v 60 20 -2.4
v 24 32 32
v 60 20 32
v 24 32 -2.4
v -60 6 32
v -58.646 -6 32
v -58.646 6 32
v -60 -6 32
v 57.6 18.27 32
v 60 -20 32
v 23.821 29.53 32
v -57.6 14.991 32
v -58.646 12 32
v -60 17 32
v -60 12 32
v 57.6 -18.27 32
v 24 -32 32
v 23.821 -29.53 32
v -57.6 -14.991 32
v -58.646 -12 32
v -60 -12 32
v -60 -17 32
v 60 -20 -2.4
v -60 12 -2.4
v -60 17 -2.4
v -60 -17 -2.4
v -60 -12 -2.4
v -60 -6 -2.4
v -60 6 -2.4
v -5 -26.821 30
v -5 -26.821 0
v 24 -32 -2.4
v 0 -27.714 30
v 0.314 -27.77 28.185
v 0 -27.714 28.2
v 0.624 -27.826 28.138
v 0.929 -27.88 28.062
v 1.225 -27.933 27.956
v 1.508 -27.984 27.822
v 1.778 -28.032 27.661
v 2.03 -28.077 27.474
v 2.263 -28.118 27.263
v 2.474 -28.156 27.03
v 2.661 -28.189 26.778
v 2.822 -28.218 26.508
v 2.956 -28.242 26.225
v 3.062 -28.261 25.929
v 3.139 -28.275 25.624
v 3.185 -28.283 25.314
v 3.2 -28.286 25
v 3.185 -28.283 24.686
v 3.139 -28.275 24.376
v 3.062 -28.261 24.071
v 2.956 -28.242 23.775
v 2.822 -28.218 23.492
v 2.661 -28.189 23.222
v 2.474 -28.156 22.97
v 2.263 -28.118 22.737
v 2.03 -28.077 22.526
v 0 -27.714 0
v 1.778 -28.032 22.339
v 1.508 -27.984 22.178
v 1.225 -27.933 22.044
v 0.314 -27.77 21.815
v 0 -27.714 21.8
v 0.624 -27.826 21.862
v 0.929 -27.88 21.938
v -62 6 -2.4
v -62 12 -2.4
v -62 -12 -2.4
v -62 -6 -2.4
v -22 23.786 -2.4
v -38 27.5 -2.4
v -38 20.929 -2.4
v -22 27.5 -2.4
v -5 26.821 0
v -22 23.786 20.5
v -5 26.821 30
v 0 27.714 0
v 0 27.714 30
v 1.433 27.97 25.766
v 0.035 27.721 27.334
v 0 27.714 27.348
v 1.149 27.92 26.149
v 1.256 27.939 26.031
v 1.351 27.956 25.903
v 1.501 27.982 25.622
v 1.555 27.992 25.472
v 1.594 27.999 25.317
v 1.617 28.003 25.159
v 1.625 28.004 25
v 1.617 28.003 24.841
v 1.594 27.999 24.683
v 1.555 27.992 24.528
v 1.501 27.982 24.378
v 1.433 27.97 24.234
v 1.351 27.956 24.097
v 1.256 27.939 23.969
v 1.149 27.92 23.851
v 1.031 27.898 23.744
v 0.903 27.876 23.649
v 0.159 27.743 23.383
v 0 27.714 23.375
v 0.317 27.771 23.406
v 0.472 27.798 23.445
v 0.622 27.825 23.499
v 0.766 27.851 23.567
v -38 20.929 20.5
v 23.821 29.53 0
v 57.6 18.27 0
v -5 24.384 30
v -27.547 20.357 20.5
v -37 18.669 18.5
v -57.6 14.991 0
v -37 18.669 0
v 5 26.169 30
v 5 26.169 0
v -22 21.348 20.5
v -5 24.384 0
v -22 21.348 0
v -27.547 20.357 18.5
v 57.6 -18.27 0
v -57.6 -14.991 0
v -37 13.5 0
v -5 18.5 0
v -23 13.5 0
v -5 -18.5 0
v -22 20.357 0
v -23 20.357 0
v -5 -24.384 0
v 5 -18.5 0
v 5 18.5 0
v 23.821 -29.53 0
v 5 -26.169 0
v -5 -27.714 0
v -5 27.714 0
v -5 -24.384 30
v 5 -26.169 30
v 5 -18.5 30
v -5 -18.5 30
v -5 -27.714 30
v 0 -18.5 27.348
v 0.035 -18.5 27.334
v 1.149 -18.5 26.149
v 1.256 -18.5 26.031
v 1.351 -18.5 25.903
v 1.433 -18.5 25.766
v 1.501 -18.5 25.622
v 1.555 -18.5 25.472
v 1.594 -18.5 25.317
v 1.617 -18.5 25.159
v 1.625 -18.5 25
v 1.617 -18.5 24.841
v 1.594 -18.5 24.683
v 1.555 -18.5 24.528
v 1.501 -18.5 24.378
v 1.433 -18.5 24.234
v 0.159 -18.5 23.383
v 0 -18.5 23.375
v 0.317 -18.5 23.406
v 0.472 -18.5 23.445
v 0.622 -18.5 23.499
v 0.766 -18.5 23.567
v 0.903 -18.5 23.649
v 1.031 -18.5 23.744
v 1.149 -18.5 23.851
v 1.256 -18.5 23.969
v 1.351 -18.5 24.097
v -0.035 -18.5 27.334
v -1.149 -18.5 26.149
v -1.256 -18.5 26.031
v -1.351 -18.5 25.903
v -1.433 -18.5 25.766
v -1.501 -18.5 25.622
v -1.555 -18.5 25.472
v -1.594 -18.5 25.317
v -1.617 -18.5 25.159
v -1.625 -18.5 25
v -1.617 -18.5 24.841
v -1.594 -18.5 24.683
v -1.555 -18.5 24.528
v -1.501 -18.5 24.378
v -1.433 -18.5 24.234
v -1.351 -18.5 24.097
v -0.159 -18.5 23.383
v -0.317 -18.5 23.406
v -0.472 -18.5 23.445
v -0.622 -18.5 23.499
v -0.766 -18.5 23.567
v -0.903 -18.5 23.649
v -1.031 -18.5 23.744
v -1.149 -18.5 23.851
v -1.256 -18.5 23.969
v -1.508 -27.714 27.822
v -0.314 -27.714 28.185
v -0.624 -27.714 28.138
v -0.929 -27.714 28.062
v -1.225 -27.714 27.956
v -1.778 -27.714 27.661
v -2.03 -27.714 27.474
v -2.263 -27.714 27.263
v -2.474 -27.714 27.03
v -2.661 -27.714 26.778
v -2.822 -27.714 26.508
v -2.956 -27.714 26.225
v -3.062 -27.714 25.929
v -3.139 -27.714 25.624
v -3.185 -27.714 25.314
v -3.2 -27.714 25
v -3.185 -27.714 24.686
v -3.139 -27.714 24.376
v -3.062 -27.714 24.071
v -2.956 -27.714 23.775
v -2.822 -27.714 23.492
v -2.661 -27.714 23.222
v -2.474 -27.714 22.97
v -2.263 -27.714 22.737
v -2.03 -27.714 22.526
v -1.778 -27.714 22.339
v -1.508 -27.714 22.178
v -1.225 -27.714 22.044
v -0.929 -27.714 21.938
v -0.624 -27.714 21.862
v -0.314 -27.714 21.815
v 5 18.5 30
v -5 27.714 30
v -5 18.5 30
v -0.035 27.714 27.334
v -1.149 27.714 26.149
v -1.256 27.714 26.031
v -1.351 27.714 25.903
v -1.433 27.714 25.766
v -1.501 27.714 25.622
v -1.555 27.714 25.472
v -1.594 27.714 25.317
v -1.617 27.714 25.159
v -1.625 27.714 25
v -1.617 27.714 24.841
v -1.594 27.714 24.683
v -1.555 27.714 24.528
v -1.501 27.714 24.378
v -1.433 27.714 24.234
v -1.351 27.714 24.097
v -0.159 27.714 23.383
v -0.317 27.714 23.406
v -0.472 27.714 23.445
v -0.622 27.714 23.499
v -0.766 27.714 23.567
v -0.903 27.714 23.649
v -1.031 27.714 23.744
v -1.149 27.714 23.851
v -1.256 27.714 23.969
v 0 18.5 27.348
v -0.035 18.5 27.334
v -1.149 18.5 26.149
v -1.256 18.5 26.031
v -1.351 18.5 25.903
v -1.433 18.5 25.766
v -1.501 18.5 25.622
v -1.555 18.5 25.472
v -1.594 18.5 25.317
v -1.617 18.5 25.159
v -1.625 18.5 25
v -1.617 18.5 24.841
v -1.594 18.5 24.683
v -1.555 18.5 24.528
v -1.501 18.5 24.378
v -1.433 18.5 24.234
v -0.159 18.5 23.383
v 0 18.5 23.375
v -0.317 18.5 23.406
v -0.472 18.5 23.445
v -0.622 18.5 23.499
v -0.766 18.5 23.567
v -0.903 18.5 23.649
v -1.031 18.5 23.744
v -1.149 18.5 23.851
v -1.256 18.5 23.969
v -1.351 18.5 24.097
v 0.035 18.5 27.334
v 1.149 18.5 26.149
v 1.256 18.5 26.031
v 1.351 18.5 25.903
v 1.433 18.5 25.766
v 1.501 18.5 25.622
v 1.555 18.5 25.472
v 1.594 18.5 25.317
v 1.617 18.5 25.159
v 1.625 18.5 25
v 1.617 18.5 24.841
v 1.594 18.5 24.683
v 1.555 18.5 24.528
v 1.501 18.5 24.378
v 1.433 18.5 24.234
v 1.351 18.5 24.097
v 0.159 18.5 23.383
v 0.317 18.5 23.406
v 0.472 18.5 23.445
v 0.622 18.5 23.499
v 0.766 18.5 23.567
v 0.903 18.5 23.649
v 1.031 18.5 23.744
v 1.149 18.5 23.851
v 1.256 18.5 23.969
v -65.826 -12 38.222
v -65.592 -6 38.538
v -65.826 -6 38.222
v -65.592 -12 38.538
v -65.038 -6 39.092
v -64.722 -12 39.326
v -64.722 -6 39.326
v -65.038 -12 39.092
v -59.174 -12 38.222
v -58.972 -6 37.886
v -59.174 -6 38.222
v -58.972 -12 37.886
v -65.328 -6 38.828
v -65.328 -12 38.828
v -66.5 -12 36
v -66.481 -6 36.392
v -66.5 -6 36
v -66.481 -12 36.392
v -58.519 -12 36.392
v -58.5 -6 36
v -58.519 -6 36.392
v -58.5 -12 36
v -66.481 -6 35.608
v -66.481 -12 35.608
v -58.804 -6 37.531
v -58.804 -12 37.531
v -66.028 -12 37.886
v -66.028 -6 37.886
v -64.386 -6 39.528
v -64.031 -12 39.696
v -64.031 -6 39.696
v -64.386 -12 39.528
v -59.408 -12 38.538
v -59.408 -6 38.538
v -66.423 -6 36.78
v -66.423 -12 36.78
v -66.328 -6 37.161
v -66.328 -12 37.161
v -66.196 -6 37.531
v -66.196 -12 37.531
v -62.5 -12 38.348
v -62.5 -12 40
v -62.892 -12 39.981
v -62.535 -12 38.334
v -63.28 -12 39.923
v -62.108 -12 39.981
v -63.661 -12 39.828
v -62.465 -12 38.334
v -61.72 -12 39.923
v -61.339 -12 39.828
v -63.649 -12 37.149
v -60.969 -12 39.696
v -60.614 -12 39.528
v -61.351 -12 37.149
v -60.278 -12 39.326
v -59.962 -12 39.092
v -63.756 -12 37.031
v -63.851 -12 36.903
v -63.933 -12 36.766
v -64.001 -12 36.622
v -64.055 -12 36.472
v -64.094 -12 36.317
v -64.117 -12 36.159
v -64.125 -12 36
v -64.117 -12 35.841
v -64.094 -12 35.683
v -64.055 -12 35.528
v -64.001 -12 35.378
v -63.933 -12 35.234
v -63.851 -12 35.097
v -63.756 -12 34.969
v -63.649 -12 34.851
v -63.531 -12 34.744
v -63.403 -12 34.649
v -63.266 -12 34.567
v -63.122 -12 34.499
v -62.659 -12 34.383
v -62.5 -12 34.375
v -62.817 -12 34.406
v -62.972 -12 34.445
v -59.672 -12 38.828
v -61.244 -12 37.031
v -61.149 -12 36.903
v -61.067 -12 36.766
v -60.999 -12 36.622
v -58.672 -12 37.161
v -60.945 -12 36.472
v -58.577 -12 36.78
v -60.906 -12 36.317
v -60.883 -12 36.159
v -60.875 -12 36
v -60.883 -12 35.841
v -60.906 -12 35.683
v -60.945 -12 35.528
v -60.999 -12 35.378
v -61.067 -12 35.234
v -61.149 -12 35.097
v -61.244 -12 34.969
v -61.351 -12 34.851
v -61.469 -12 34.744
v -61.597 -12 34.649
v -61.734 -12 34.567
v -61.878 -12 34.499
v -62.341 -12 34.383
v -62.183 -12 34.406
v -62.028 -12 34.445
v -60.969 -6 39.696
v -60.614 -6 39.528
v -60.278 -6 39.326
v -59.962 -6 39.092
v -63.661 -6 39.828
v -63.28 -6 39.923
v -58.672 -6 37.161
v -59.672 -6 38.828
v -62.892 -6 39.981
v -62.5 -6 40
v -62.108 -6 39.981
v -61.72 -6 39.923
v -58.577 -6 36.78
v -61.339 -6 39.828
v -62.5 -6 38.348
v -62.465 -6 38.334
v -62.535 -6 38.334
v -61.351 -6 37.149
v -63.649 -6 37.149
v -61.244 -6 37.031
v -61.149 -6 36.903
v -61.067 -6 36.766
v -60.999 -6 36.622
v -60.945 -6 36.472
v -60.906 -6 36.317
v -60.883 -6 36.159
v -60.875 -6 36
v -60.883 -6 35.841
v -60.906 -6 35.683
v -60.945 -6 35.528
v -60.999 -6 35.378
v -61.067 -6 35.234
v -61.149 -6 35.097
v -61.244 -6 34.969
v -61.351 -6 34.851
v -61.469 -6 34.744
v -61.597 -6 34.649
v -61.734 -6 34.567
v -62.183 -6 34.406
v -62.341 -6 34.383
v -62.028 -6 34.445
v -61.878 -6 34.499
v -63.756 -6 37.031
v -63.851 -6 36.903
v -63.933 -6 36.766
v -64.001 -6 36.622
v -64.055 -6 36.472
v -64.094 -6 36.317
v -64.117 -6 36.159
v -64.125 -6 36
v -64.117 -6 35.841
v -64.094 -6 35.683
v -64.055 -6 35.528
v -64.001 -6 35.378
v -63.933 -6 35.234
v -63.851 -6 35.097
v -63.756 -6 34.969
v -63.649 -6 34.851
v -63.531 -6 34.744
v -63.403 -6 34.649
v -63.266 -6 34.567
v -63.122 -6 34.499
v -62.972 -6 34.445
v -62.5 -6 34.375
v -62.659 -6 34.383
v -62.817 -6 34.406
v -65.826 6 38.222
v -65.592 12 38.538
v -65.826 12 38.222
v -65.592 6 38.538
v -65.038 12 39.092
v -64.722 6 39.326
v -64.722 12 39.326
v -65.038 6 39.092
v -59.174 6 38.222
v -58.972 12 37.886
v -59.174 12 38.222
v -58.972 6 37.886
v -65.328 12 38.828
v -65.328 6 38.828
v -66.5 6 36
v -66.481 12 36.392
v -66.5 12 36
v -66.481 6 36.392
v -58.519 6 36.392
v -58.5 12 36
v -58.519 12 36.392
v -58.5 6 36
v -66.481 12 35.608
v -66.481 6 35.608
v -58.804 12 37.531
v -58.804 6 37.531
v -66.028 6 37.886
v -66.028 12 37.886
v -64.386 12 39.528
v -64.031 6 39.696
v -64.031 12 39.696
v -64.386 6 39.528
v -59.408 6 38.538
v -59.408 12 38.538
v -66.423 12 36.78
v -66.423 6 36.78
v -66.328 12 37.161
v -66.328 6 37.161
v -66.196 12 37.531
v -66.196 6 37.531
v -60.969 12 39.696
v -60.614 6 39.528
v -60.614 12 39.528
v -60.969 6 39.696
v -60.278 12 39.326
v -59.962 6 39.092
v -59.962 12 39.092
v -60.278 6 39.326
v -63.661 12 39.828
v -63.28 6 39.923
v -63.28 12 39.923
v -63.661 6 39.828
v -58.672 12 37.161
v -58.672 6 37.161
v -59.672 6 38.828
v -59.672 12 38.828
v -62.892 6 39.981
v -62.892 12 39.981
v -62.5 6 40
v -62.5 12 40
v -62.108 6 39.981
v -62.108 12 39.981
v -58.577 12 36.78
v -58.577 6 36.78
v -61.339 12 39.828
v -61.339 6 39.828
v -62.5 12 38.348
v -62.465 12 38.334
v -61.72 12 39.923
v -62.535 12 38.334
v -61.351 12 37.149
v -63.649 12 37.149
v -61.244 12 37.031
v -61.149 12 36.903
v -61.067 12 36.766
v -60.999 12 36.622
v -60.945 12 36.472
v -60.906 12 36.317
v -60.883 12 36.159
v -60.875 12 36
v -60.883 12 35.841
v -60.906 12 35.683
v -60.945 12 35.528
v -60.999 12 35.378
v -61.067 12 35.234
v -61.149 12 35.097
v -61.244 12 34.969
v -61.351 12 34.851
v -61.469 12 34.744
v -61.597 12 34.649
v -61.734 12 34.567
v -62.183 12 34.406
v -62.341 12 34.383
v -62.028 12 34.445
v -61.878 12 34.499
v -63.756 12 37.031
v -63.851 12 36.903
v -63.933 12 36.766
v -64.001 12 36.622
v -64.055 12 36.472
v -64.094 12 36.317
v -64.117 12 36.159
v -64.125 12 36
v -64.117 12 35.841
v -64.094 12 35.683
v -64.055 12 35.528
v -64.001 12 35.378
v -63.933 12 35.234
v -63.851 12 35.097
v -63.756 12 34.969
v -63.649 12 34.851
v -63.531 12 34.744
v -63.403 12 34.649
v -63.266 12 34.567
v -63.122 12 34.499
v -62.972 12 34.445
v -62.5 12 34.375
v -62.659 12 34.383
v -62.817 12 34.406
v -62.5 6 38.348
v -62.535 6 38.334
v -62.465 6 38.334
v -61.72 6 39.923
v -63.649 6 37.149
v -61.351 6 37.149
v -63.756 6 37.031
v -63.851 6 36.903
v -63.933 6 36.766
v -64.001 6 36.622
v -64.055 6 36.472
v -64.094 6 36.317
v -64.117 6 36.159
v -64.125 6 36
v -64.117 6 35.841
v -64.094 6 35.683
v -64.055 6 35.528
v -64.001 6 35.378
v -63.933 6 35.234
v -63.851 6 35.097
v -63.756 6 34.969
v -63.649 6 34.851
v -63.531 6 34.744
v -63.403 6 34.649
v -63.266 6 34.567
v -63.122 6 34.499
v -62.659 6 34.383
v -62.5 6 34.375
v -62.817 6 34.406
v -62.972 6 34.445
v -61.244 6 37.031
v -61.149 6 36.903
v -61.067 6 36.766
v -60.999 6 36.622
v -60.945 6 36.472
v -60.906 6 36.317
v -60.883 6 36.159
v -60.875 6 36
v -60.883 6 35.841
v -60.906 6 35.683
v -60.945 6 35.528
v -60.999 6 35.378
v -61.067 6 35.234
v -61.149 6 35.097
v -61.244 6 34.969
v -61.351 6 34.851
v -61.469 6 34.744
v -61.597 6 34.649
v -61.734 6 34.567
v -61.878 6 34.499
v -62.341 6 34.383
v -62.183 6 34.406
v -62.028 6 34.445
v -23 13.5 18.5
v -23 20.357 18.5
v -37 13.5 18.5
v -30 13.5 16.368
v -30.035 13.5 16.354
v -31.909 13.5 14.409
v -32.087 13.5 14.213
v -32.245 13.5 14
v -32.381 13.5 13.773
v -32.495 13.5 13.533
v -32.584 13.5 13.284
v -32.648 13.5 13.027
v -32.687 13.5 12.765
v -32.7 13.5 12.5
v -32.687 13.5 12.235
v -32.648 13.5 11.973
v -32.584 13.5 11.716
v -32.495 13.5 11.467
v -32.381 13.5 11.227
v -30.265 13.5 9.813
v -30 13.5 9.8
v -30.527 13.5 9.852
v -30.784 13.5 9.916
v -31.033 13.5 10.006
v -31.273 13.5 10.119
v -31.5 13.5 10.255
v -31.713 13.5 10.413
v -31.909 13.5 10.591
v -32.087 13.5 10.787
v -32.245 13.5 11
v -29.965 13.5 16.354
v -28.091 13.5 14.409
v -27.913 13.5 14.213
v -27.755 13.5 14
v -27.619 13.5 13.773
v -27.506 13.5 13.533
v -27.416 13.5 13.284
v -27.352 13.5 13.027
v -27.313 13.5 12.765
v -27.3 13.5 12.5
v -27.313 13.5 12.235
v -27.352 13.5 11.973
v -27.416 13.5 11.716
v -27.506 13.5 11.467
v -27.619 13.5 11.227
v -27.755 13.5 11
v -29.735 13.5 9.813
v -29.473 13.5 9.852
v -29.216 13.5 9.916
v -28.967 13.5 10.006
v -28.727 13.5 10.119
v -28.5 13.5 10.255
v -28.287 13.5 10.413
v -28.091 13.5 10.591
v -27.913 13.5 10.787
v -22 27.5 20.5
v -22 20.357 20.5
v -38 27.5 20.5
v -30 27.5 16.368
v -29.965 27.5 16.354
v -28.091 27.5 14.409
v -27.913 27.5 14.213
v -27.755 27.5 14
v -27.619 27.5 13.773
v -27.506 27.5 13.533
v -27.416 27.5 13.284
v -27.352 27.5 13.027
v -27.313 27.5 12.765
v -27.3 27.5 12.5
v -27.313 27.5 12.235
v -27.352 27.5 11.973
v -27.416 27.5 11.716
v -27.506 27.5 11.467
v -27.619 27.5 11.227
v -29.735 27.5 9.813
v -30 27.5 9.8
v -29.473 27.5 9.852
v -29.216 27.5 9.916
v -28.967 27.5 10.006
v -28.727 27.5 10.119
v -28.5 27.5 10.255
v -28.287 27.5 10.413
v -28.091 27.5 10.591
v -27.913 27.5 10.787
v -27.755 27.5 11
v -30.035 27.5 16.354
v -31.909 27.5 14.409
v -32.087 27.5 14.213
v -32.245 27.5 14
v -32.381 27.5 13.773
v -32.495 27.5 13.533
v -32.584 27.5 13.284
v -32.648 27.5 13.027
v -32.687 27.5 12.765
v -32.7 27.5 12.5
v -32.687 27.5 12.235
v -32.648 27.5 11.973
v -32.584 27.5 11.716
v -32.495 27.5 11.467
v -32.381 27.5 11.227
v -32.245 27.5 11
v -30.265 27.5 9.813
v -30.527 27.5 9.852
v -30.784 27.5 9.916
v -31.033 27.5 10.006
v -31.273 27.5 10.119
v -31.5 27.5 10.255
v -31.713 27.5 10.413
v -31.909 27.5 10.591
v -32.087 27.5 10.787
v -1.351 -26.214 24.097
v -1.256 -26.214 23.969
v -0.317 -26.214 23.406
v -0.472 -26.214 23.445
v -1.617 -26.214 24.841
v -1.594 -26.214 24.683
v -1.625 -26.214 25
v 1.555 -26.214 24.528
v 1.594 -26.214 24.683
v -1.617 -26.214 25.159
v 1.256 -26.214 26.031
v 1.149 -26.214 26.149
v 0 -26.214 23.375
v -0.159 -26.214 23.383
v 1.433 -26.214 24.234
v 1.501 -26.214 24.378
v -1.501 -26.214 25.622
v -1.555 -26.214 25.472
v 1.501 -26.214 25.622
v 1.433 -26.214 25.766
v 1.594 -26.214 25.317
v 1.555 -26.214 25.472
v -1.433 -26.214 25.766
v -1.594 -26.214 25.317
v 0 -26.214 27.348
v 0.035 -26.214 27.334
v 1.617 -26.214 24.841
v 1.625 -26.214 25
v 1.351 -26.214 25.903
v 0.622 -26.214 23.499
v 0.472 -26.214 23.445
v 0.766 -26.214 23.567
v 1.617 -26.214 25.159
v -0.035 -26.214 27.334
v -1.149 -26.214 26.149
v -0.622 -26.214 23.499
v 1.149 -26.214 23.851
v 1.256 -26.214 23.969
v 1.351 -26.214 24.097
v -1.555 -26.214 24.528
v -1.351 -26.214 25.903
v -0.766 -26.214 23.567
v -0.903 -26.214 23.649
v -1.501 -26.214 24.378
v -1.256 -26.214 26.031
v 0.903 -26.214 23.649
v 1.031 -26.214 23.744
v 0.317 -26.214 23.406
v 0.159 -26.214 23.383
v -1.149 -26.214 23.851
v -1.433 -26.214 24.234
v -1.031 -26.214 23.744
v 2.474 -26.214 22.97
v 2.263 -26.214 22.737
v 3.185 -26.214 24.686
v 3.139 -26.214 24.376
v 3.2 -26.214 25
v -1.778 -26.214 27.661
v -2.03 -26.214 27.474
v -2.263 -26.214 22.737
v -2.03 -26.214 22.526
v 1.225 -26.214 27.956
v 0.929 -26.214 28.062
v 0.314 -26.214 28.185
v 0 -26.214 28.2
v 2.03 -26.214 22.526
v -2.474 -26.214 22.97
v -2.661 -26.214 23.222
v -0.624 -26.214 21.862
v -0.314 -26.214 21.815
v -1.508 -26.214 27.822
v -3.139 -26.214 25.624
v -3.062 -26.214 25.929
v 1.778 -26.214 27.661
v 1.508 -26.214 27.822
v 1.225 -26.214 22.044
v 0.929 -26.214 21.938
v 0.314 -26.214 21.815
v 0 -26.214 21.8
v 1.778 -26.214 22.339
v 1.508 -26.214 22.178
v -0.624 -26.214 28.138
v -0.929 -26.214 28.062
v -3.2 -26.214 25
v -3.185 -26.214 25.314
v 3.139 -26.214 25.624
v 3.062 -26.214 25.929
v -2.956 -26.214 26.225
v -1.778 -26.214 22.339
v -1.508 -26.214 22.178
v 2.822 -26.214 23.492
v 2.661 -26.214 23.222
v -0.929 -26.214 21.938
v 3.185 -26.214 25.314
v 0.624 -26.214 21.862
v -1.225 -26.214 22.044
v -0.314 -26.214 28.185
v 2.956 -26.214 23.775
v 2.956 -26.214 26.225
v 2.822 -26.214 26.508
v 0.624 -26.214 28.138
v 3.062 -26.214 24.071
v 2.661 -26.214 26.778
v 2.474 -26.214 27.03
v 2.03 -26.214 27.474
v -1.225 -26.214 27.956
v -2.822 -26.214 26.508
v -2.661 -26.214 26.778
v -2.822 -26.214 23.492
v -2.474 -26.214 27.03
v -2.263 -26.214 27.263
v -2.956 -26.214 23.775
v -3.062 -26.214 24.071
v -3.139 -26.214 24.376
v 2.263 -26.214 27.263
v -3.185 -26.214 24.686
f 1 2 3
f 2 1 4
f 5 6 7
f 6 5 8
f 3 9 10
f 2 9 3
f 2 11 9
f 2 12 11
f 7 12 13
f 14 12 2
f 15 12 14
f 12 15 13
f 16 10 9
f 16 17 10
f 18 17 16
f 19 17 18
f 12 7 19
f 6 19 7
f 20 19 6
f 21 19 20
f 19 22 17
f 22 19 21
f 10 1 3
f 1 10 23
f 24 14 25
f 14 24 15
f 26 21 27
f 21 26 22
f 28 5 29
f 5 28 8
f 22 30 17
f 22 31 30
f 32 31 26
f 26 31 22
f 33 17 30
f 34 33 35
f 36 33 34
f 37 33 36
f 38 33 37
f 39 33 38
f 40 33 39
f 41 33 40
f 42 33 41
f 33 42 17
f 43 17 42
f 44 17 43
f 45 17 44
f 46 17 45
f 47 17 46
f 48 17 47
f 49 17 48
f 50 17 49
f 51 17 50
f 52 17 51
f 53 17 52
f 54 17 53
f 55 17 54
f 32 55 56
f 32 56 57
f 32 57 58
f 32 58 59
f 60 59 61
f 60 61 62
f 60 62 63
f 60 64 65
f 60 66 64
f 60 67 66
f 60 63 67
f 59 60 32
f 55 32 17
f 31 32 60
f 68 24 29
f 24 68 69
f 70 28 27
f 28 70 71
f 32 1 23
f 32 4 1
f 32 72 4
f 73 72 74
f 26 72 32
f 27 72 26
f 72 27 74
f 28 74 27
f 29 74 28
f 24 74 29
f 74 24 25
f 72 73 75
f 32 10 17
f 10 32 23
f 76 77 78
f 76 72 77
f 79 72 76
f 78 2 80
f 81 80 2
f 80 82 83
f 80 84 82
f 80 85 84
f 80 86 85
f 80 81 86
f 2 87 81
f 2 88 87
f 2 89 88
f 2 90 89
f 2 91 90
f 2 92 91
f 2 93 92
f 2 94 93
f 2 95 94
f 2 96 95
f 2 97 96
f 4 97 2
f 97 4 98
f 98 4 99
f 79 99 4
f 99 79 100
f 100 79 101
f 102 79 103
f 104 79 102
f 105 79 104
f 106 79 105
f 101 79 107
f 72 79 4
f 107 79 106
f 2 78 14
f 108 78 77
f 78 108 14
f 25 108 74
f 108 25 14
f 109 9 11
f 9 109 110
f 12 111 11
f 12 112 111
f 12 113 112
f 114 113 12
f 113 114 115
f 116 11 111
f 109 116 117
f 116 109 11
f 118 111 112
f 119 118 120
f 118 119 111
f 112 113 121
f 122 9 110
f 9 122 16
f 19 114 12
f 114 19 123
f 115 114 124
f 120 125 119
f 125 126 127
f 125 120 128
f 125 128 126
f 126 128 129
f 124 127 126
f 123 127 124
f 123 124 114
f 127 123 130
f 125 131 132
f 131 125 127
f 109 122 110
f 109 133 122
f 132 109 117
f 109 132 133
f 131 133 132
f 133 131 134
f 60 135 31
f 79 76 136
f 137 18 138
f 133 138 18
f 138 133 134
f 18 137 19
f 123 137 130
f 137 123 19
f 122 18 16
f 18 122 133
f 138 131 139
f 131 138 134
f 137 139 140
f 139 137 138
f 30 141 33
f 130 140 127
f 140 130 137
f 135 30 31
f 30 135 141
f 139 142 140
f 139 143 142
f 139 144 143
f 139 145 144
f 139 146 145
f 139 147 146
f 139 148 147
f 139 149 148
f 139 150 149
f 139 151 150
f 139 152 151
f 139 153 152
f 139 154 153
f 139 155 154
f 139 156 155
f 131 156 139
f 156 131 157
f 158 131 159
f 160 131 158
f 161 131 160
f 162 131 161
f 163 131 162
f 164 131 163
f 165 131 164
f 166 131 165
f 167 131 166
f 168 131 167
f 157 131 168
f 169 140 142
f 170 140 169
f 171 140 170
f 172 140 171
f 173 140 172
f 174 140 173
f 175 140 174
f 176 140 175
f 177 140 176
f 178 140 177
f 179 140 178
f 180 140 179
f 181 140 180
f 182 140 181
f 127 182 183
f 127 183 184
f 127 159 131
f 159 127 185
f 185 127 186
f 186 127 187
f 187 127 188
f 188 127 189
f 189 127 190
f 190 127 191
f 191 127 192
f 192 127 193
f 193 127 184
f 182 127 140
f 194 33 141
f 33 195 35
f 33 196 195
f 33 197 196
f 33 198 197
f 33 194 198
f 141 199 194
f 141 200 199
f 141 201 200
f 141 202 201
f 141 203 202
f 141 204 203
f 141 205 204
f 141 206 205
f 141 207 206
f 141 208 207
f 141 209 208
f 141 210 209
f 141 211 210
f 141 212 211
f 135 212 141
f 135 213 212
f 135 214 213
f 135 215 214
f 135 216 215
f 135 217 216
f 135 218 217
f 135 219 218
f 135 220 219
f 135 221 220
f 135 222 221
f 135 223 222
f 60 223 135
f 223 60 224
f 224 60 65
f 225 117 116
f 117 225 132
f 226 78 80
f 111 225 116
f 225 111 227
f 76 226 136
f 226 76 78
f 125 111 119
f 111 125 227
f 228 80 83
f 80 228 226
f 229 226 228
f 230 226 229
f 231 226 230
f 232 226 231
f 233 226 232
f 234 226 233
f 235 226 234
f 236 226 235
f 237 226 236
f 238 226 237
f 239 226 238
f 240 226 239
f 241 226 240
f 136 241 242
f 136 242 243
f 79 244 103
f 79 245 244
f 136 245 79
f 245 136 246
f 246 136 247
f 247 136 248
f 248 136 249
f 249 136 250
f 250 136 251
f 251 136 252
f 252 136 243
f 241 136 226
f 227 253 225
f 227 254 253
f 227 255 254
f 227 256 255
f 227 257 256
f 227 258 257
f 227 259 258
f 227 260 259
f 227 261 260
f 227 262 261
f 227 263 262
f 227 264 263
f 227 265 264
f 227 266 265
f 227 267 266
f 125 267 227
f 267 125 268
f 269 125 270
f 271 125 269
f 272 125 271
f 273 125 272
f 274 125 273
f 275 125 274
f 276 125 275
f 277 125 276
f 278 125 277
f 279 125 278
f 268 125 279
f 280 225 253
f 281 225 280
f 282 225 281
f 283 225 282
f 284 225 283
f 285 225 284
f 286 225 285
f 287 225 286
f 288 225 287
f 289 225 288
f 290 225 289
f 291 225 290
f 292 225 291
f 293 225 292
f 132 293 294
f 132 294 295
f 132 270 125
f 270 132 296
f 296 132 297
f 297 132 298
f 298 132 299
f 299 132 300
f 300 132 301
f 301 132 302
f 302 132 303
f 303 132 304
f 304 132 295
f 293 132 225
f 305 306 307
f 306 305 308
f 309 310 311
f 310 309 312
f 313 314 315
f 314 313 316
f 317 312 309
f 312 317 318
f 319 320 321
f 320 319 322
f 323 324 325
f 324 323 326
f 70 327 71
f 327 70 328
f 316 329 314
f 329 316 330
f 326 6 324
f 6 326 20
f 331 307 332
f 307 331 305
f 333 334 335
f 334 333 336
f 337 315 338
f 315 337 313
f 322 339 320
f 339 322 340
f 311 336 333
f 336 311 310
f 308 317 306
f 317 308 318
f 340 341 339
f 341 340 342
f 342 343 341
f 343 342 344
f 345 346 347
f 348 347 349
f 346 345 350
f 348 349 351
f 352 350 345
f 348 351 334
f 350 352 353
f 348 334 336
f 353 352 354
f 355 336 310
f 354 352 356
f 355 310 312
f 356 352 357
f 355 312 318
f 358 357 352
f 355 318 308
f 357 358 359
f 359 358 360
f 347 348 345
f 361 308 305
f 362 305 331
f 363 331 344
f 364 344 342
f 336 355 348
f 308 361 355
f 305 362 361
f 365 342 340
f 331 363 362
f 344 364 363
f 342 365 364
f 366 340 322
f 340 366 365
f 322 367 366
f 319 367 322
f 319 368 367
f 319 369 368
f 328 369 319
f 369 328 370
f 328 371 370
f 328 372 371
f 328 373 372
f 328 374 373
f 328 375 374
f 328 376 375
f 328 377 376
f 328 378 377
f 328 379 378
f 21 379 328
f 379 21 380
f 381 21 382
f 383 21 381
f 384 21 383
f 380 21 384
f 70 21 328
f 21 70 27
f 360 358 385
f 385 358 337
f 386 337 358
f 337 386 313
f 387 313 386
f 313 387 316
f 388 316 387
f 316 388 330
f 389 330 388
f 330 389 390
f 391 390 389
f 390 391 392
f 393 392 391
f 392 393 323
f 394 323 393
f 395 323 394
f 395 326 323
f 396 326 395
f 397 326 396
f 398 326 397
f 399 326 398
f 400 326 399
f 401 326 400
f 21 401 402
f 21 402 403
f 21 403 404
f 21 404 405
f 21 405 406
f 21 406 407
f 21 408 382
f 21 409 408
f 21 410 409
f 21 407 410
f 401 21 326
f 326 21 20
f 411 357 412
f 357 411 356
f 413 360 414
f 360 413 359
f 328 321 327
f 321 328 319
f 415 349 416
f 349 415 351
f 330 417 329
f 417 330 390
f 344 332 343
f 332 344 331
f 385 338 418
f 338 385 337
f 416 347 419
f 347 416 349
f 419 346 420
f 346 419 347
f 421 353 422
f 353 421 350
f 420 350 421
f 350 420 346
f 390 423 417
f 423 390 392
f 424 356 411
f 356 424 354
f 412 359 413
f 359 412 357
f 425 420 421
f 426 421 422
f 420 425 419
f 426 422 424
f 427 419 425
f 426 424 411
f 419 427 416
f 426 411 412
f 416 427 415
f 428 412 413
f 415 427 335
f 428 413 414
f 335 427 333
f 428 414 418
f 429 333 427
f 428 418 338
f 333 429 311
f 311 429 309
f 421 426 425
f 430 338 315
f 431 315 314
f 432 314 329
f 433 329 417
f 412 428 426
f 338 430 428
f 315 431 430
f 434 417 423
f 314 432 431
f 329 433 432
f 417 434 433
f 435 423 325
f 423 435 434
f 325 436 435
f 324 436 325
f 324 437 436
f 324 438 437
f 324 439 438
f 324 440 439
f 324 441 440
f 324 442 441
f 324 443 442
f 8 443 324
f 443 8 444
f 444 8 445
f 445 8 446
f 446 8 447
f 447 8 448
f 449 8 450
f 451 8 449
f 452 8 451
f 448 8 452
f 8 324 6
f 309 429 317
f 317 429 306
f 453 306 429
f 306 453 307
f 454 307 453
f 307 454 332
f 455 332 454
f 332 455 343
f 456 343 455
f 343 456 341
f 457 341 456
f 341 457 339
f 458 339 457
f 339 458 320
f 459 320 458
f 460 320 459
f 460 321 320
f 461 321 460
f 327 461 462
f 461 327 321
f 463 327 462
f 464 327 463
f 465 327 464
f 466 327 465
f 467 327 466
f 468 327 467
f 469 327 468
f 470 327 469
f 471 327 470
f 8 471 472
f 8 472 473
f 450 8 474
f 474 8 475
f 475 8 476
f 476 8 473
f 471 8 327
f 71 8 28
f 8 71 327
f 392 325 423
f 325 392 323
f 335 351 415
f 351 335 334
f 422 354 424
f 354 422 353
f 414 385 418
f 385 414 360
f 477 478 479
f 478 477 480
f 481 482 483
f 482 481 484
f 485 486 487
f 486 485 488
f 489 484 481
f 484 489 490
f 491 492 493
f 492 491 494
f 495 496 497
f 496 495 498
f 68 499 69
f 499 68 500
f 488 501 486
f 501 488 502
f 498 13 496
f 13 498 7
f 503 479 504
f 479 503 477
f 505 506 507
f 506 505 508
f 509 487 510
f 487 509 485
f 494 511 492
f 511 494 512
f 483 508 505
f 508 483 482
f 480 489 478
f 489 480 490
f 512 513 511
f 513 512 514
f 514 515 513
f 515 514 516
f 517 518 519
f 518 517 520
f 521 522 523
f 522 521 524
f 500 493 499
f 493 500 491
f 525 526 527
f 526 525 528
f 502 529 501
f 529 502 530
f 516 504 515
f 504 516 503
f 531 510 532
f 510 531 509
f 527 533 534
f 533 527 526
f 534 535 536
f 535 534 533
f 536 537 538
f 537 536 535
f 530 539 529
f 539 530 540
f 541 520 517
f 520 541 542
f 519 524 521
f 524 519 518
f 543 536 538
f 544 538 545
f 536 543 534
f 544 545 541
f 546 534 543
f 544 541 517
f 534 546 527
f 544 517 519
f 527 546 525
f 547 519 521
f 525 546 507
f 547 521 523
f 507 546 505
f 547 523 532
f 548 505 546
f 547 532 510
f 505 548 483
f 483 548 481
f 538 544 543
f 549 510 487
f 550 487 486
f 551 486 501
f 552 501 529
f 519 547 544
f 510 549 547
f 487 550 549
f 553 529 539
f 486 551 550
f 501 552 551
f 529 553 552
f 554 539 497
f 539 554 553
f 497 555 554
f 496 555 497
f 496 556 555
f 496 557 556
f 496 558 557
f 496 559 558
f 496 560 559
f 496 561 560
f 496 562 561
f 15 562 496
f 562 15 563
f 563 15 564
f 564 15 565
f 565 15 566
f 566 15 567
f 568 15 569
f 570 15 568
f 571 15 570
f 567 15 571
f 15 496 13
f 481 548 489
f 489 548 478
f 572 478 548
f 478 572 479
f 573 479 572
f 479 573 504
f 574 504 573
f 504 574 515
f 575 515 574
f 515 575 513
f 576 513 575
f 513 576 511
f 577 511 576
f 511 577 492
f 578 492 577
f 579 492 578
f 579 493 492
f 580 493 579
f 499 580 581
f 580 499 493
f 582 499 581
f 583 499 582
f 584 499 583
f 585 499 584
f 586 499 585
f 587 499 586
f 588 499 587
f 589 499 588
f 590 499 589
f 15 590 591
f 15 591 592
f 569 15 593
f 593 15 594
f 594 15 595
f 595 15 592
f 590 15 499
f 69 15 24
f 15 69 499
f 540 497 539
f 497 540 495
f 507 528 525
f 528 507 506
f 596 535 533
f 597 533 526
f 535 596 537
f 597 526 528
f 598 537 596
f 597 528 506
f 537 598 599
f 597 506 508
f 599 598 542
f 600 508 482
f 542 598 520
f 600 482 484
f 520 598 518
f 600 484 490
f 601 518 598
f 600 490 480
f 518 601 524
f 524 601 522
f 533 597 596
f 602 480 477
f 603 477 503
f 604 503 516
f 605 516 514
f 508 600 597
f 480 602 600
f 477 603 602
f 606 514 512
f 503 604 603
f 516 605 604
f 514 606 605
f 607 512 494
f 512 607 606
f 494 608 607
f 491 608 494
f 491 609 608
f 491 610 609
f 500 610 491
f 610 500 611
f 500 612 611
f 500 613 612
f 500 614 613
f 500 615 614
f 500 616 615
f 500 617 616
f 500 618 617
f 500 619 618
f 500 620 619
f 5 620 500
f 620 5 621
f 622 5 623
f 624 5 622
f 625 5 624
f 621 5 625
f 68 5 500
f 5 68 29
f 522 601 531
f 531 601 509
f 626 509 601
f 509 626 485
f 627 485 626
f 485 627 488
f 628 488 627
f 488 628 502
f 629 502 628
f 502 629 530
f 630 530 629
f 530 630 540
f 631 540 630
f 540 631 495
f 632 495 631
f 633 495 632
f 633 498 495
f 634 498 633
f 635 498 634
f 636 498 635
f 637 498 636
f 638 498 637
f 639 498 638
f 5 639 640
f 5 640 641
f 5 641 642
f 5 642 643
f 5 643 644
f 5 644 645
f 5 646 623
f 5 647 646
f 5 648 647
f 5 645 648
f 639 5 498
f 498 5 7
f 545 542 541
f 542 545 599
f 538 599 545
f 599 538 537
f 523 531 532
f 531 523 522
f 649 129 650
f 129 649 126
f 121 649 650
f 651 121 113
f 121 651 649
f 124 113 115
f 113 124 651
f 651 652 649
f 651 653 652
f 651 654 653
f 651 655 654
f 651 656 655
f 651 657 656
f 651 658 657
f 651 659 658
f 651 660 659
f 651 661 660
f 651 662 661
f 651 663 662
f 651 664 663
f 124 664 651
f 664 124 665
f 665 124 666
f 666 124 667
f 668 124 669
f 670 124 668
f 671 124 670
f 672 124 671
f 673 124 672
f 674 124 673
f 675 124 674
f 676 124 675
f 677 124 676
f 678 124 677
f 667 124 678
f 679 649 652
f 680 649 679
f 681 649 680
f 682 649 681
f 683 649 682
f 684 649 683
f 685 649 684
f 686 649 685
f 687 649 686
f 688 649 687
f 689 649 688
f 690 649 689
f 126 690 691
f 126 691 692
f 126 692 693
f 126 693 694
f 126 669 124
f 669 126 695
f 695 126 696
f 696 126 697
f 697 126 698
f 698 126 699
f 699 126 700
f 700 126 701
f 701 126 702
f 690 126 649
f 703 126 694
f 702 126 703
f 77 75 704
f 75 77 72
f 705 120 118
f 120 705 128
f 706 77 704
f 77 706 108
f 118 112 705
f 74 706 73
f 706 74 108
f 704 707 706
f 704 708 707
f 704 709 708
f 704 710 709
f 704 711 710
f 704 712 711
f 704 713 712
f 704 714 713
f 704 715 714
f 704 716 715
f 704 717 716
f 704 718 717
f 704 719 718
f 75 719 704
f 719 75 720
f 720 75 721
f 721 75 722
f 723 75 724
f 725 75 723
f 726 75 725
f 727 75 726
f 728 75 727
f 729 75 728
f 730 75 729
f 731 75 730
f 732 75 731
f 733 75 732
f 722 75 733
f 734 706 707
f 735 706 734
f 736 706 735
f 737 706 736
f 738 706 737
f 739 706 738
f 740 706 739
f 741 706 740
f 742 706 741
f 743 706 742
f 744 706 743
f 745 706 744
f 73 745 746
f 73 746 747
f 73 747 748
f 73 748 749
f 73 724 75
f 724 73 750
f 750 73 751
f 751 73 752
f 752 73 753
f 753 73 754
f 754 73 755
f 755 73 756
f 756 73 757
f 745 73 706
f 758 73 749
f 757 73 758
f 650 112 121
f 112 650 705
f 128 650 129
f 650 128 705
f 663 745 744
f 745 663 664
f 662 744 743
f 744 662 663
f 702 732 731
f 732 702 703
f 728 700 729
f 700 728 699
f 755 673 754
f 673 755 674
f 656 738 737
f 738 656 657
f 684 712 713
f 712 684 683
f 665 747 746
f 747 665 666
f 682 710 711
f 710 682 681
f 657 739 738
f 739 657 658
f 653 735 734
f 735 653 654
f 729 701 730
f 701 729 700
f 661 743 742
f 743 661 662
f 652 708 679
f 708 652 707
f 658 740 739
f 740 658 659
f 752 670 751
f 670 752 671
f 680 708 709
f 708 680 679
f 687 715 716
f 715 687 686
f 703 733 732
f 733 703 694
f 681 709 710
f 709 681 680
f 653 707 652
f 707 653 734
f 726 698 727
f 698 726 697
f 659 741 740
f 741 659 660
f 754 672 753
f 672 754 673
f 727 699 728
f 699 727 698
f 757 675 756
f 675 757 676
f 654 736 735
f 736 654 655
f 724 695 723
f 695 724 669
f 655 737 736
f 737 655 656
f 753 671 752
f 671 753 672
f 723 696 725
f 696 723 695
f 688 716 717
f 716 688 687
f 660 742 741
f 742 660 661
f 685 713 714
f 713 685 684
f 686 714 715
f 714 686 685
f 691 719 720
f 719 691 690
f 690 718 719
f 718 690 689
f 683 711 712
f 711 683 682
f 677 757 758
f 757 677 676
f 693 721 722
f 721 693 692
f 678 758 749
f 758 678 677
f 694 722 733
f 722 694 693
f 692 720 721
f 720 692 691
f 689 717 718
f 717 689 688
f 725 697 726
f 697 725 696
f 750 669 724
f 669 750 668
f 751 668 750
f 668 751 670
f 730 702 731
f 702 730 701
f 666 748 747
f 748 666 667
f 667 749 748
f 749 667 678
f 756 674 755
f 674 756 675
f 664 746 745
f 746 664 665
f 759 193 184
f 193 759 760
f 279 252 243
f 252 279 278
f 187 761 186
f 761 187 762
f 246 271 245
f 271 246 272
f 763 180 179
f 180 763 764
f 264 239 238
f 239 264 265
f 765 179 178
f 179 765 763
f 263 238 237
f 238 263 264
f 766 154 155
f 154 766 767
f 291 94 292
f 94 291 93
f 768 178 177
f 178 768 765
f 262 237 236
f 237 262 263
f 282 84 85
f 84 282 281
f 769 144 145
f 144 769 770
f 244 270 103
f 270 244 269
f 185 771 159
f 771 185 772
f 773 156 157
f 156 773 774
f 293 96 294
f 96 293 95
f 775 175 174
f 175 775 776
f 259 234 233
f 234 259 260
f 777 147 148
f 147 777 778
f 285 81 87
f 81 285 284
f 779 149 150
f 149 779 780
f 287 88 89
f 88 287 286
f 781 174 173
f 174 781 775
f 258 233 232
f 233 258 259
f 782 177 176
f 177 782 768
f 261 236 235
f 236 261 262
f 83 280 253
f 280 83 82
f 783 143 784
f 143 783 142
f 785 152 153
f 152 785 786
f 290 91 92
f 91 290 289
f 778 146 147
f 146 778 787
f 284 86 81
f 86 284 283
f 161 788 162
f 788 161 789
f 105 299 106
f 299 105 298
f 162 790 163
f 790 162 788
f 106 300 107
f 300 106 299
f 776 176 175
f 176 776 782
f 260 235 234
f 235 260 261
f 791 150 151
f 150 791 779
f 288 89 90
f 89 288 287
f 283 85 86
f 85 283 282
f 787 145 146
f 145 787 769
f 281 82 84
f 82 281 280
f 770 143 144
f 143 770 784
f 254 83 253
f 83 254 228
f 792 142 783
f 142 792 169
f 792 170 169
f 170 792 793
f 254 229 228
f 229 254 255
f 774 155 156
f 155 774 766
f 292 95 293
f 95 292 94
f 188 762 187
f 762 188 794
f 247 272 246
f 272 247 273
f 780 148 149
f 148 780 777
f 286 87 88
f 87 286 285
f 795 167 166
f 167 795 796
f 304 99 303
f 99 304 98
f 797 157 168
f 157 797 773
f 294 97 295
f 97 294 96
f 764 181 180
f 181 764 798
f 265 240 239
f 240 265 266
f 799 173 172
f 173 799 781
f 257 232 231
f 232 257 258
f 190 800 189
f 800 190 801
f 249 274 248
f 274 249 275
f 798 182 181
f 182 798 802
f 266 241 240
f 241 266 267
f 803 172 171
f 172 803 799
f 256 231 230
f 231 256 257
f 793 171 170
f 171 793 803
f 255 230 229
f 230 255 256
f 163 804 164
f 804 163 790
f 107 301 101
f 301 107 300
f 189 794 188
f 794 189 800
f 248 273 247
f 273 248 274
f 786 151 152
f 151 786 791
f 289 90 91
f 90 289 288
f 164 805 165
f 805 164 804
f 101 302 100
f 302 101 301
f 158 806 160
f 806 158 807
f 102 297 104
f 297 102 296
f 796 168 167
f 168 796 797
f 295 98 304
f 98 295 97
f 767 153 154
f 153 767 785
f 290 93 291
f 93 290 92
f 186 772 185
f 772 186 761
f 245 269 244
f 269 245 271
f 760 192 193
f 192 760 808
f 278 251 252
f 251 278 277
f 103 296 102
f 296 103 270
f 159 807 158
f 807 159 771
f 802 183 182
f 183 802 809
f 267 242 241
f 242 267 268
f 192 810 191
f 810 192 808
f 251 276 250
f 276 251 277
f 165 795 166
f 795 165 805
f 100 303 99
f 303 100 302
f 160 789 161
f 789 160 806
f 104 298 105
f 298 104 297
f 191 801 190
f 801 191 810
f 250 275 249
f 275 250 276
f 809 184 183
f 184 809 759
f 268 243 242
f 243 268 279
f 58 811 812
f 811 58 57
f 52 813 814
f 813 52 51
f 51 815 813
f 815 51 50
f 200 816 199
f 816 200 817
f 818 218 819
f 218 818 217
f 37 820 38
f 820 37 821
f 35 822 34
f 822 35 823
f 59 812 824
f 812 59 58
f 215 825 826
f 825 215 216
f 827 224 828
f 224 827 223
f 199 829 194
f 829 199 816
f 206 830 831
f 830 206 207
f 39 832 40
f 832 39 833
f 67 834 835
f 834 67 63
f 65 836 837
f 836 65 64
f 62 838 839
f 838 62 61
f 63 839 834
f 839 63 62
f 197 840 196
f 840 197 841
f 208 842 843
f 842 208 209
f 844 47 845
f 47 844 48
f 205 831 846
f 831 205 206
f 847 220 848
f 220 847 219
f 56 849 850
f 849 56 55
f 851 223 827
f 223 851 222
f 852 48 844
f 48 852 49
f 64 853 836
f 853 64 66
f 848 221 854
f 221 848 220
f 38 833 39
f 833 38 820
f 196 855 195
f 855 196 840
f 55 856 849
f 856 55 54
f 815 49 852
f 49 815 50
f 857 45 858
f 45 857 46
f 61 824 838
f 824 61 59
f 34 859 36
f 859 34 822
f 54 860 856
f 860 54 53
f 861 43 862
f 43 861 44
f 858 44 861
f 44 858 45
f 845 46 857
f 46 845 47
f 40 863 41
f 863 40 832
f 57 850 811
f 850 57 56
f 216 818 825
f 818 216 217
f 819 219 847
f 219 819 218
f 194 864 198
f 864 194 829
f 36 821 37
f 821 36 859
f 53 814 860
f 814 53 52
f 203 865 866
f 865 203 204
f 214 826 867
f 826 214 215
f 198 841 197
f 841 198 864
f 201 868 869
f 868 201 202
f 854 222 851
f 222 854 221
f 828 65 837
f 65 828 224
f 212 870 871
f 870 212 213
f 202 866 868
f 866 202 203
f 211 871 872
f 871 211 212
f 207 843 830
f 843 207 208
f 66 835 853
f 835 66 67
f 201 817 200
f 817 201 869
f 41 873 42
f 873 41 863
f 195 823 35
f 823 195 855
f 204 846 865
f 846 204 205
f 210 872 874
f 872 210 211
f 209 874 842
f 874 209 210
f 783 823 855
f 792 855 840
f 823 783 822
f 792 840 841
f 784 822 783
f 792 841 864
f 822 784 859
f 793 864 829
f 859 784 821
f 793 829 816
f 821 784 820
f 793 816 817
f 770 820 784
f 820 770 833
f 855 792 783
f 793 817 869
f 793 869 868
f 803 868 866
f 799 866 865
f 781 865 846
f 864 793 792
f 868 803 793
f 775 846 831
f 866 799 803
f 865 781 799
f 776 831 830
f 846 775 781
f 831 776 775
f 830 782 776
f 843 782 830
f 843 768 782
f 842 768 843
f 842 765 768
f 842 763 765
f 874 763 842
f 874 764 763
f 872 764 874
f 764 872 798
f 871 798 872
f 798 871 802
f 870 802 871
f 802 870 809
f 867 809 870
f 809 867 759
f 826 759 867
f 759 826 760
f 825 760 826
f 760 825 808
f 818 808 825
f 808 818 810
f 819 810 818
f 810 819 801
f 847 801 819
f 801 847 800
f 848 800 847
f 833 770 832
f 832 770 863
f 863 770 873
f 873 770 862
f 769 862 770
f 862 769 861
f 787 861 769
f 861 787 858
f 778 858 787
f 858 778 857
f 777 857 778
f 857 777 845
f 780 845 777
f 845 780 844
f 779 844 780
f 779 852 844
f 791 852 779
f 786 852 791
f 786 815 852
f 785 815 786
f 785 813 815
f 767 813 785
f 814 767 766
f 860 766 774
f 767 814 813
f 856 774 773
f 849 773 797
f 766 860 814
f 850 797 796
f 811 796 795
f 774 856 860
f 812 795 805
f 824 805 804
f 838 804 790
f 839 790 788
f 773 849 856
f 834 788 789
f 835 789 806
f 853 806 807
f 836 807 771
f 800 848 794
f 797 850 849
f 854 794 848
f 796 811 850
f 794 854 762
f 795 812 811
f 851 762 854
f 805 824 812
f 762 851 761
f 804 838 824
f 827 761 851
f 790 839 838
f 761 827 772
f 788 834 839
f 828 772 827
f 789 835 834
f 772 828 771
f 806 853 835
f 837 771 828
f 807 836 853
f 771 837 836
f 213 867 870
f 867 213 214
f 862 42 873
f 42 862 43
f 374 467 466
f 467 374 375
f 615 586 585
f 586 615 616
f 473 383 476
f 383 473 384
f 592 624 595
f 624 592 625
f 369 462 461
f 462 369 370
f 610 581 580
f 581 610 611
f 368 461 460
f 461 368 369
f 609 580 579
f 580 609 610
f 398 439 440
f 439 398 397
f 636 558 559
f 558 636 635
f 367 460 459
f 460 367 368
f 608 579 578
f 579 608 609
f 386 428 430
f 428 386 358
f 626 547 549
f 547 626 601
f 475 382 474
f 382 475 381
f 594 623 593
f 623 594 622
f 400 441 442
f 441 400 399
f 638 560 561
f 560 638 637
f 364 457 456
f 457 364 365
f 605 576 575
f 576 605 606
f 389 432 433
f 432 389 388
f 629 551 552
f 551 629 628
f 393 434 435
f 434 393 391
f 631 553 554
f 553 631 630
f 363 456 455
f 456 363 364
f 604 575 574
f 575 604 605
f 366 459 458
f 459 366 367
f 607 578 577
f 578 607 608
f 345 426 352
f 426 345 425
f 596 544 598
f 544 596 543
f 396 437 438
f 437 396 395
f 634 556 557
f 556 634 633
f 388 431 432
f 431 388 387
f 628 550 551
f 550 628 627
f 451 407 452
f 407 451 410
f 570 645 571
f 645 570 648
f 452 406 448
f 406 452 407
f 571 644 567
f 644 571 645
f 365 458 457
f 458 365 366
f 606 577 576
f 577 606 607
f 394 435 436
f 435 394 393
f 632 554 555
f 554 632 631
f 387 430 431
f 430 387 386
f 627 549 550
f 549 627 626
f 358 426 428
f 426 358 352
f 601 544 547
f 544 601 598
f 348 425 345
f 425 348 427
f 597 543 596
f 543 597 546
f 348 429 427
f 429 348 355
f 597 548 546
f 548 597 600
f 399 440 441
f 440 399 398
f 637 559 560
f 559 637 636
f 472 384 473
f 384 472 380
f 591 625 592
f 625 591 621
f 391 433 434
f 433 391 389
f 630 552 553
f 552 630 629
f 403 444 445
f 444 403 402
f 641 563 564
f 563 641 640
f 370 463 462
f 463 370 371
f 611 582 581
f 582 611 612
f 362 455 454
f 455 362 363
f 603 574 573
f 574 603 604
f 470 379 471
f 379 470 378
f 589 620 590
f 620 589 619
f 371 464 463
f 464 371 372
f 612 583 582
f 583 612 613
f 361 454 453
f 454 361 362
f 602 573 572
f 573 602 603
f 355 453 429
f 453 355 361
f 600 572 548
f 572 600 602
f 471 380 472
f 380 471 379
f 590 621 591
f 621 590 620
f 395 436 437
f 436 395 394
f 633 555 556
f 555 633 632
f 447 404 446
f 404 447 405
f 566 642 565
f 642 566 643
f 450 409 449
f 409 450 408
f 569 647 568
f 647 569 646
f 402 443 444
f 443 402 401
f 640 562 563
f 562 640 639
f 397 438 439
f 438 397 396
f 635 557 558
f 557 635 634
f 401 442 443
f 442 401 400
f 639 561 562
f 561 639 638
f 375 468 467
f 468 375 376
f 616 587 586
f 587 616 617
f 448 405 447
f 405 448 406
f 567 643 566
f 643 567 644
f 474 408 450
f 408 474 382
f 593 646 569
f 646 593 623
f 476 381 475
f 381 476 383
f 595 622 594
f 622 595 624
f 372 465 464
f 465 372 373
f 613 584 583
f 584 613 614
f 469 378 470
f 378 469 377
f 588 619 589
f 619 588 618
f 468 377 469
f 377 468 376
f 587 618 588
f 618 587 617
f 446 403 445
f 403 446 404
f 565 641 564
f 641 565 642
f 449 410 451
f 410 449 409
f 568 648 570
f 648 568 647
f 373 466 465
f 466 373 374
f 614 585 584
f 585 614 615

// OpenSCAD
// file: demiourgos_support.scad
// demiourgos_support.scad — self-supporting primitives for support-free FDM.
//
// Demiourgos installs this into every workspace. Use it from a model with:
//     use <demiourgos_support.scad>;
//
// Build direction is +Z. These helpers make horizontal holes and pins
// self-supporting (a ≤45° apex at the top) so they print without supports.
// See docs/support-free-design.md for the design rules behind them.

// 2D teardrop profile: a circle of diameter `d` with a self-supporting apex
// pointing +Y. `ang` is the apex half-angle from vertical (45° = the standard
// self-supporting limit). Tangent sides, so no kink.
module teardrop_2d(d = 5, ang = 45, fn = 64) {
    r = d / 2;
    hull() {
        circle(r = r, $fn = fn);
        translate([0, r / sin(ang), 0]) circle(r = 0.05, $fn = 8);
    }
}

// A teardrop prism for a self-supporting HORIZONTAL HOLE. The apex points +Z
// (up), the axis runs along Y, and it is centered on the origin and `length`
// long. Subtract it from a wall to make a hole that needs no support:
//     difference() { wall(); translate([x, y, z]) teardrop_hole(d=6, length=20); }
module teardrop_hole(d = 5, length = 10, ang = 45, fn = 64) {
    translate([0, length / 2, 0])
        rotate([90, 0, 0])
            linear_extrude(height = length)
                teardrop_2d(d, ang, fn);
}

// A flat-topped HEXAGONAL hole (across-flats = `d`). The flat top is a short
// bridge and the upper facets sit at 30° from vertical, so it self-supports and
// fits hex hardware. Apex/flat at +Z, axis along Y, centered, `length` long.
module hex_hole(d = 6, length = 10) {
    translate([0, length / 2, 0])
        rotate([90, 0, 0])
            linear_extrude(height = length)
                circle(d = d / cos(30), $fn = 6);
}

// A horizontal PIN / trunnion with a teardrop cross-section so its underside is
// self-supporting. Extends +Y from the origin by `length`, apex +Z. Use in place
// of a plain `cylinder` for sideways pins:
//     translate([x, y, z]) support_pin(d=4, length=4);
module support_pin(d = 4, length = 4, ang = 45, fn = 64) {
    translate([0, length, 0])
        rotate([90, 0, 0])
            linear_extrude(height = length)
                teardrop_2d(d, ang, fn);
}

// A 45° CHAMFER prism to place under a horizontal ledge so the overhang becomes
// self-supporting. `w` wide (X), `length` long (Y), rising `h` in Z at 45°.
// Position its top edge at the ledge underside and subtract/union as needed.
module chamfer_45(w = 10, length = 10, h = 5) {
    // Right-triangle cross-section in X-Z (45°), extruded along Y.
    translate([0, length, 0])
        rotate([90, 0, 0])
            linear_extrude(height = length)
                polygon([[-w / 2, 0], [w / 2, 0], [w / 2, h]]);
}
// main file
// fit-check helper: the coffin box, immune to -D overrides
use <coffin_automaton.scad>
box();
